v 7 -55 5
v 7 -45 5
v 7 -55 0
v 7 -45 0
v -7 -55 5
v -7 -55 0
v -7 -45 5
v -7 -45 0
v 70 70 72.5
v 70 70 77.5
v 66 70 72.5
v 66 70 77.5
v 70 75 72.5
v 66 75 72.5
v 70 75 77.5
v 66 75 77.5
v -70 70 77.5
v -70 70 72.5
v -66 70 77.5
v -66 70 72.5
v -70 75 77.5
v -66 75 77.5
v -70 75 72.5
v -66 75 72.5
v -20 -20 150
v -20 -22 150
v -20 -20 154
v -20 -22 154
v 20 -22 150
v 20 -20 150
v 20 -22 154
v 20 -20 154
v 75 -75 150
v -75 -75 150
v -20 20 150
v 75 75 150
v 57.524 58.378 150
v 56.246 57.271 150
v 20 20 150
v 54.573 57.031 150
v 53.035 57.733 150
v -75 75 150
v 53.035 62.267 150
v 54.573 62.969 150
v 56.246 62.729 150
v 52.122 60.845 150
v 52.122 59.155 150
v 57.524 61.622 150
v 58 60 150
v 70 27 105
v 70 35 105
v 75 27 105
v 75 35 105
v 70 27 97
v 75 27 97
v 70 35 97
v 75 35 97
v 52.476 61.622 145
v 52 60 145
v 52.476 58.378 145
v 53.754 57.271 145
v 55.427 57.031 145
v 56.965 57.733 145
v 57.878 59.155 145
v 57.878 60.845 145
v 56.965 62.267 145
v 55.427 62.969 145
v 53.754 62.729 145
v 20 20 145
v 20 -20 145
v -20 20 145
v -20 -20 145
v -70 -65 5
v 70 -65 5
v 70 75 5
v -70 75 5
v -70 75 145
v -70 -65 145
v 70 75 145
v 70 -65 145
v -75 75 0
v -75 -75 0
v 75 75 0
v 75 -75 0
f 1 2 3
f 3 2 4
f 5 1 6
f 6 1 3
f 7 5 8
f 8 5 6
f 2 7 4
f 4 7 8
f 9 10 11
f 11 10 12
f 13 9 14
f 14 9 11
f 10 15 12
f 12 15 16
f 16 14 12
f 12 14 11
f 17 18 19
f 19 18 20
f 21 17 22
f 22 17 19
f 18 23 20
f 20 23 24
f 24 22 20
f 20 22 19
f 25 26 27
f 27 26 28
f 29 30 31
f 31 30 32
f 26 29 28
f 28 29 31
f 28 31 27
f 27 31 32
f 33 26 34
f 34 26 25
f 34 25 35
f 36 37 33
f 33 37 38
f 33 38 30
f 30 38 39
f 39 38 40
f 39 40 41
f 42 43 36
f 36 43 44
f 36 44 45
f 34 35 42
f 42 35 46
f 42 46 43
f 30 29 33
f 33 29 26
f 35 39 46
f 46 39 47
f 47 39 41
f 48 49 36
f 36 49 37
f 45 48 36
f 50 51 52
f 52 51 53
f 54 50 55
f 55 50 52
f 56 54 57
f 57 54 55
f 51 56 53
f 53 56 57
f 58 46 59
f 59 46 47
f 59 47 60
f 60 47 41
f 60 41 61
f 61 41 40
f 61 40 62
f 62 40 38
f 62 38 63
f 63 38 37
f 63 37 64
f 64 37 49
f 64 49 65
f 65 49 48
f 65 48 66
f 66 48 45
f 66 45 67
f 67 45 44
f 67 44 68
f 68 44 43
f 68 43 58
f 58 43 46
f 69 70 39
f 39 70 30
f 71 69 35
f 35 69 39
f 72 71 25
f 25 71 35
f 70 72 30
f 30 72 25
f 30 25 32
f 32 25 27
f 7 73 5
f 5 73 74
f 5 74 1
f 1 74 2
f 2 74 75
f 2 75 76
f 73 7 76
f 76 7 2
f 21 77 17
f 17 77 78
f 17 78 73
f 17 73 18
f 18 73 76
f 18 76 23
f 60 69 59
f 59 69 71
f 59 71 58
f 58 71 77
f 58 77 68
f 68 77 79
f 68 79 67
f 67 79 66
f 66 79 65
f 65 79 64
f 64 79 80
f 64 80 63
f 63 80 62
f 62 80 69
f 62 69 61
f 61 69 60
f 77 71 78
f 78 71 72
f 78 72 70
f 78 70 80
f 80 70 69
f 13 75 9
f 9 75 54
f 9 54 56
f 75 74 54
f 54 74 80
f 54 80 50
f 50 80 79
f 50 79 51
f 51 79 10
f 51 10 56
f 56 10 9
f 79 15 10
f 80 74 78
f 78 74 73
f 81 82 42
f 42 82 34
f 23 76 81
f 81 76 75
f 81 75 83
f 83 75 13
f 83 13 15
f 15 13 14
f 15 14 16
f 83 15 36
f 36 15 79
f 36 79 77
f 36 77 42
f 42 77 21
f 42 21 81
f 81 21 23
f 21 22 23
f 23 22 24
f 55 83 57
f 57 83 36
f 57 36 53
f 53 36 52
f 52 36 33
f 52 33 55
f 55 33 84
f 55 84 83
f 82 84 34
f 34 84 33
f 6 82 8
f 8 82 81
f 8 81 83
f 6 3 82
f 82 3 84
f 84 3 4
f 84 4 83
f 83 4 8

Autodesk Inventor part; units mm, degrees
ref_plane "YZ Plane" through (0, 0, 0) normal (1, 0, 0) x (0, 1, 0)
ref_plane "XZ Plane" through (0, 0, 0) normal (0, 1, 0) x (-1, 0, 0)
ref_plane "XY Plane" through (0, 0, 0) normal (0, 0, 1) x (1, 0, 0)
sketch "Náčrt1" plane through (0, 0, 0) normal (0, 0, 1) x (1, 0, 0)
  line L0 (0, 105) -> (0, -105) projected
  line L1 (-105, 0) -> (105, 0) projected
  line L2 (-75, 75) -> (75, 75)
  line L3 (75, 75) -> (75, -75)
  line L4 (75, -75) -> (-75, -75)
  line L5 (-75, -75) -> (-75, 75)
  point P0 (0, 0)
  dimension "d0" = 150
  dimension "d1" = 150
extrude "Vysunutí1" add sketch "Náčrt1" along normal blind 150
sketch "Náčrt2" plane through (-75, 75, 0) normal (0, 1, 0) x (1, 0, 0)
  line L0 (0, 0) -> (0, -150) projected
  line L1 (150, 0) -> (0, 0) projected
  line L2 (5, -145) -> (145, -145)
  line L3 (145, -145) -> (145, -5)
  line L4 (145, -5) -> (5, -5)
  line L5 (5, -5) -> (5, -145)
  point P0 (75, 0)
  dimension "d4" = 140
  dimension "d5" = 140
  dimension "d6" = 5
  dimension "d7" = 5
extrude "Vysunutí2" cut sketch "Náčrt2" against normal blind 140
sketch "Náčrt3" plane through (0, 0, 150) normal (0, 0, 1) x (1, 0, 0)
  line L0 (-20, 20) -> (20, 20)
  line L1 (20, 20) -> (20, -20)
  line L2 (20, -20) -> (-20, -20)
  line L3 (-20, -20) -> (-20, 20)
  line L4 (0, 105) -> (0, -105) projected
  line L5 (-105, 0) -> (105, 0) projected
  line L6 (-75, -75) -> (75, -75) projected
  circle A0 centre (55, 60) radius 3
  line L7 (75, -75) -> (75, 75) projected
  line L8 (75, 75) -> (-75, 75) projected
  point P0 (0, 0)
  dimension "d10" = 40
  dimension "d11" = 40
  dimension "d12" = 55
  dimension "d13" = 6
  dimension "d14" = 20
  dimension "d15" = 15
extrude "Vysunutí3" cut sketch "Náčrt3" against normal blind 10 contours L0 L4 L5 L3 | L0 L1 L5 L4 | L5 L4 L2 L3 | L5 L1 L2 L4 | A0
sketch "Náčrt36" plane through (75, -75, 0) normal (1, 0, 0) x (0, 0, -1)
  line L0 (-105, 110) -> (-97, 110)
  line L1 (-97, 110) -> (-97, 102)
  line L2 (-97, 102) -> (-105, 102)
  line L3 (-105, 102) -> (-105, 110)
  line L4 (0, 0) -> (0, 150) projected
  line L5 (0, 150) -> (-150, 150) projected
  line L6 (-150, 0) -> (-150, 150) projected
  line L7 (0, 0) -> (-150, 0) projected
  point P0 (0, 75)
  dimension "d188" = 8
  dimension "d189" = 8
  dimension "d190" = 40
  dimension "d191" = 45
extrude "Vysunutí28" cut sketch "Náčrt36" against normal blind 10 contours L0 L1 L2 L3
sketch "Náčrt37" plane through (0, 0, 150) normal (0, 0, 1) x (1, 0, 0)
  line L0 (-20, -20) -> (-20, 20) projected
  line L1 (-20, -20) -> (20, -20)
  line L2 (20, -20) -> (20, -22)
  line L3 (20, -22) -> (-20, -22)
  line L4 (-20, -22) -> (-20, -20)
  point P0 (0, 0)
  dimension "d194" = 2
  dimension "d195" = 40
extrude "Vysunutí29" add sketch "Náčrt37" along normal blind 4
sketch "Náčrt38" plane through (-70, 75, 145) normal (1, 0, 0) x (0, 0, -1)
  line L0 (0, 0) -> (140, 0) projected
  line L1 (0, 0) -> (0, -140) projected
  line L2 (0, -140) -> (140, -140) projected
  line L3 (140, 0) -> (140, -140) projected
  line L4 (67.5, 0) -> (72.5, 0)
  line L5 (72.5, 0) -> (72.5, -5)
  line L6 (72.5, -5) -> (67.5, -5)
  line L7 (67.5, -5) -> (67.5, 0)
  point P0 (145, -75)
  dimension "d198" = 5
  dimension "d199" = 5
  dimension "d200" = 67.5
extrude "Vysunutí30" add sketch "Náčrt38" along normal blind 4 contours L0 L5 L6 L7
sketch "Náčrt39" plane through (70, 75, 5) normal (-1, 0, 0) x (0, 0, 1)
  line L0 (92, -48) -> (92, -40) projected
  line L1 (92, -40) -> (100, -40) projected
  line L2 (100, -40) -> (100, -48) projected
  line L3 (100, -48) -> (92, -48) projected
  line L4 (0, 0) -> (140, 0) projected
  line L5 (0, 0) -> (0, -140) projected
  line L6 (0, -140) -> (140, -140) projected
  line L7 (140, 0) -> (140, -140) projected
  line L8 (67.5, 0) -> (72.5, 0)
  line L9 (72.5, 0) -> (72.5, -5)
  line L10 (72.5, -5) -> (67.5, -5)
  line L11 (67.5, -5) -> (67.5, 0)
  point P0 (-5, -75)
  point P1 (72.5, 0)
  dimension "d203" = 5
  dimension "d204" = 5
  dimension "d205" = 67.5
extrude "Vysunutí31" add sketch "Náčrt39" along normal blind 4 contours L4 L9 L10 L11
sketch "Náčrt41" plane through (0, 0, 0) normal (0, 0, -1) x (-1, 0, 0)
  line L0 (75, -75) -> (-75, -75) projected
  line L1 (75, 75) -> (75, -75) projected
  line L2 (-75, 75) -> (75, 75) projected
  line L3 (-75, -75) -> (-75, 75) projected
  line L4 (-7, -45) -> (7, -45)
  line L5 (7, -45) -> (7, -55)
  line L6 (7, -55) -> (-7, -55)
  line L7 (-7, -55) -> (-7, -45)
  line L8 (0, -105) -> (0, 105) projected
  point P0 (0, 0)
  dimension "d209" = 14
  dimension "d210" = 10
  dimension "d211" = 20
extrude "Vysunutí32" cut sketch "Náčrt41" against normal blind 10 contours L8 L4 L5 L6 | L6 L7 L4 L8
properties part number "Box na elektro"
